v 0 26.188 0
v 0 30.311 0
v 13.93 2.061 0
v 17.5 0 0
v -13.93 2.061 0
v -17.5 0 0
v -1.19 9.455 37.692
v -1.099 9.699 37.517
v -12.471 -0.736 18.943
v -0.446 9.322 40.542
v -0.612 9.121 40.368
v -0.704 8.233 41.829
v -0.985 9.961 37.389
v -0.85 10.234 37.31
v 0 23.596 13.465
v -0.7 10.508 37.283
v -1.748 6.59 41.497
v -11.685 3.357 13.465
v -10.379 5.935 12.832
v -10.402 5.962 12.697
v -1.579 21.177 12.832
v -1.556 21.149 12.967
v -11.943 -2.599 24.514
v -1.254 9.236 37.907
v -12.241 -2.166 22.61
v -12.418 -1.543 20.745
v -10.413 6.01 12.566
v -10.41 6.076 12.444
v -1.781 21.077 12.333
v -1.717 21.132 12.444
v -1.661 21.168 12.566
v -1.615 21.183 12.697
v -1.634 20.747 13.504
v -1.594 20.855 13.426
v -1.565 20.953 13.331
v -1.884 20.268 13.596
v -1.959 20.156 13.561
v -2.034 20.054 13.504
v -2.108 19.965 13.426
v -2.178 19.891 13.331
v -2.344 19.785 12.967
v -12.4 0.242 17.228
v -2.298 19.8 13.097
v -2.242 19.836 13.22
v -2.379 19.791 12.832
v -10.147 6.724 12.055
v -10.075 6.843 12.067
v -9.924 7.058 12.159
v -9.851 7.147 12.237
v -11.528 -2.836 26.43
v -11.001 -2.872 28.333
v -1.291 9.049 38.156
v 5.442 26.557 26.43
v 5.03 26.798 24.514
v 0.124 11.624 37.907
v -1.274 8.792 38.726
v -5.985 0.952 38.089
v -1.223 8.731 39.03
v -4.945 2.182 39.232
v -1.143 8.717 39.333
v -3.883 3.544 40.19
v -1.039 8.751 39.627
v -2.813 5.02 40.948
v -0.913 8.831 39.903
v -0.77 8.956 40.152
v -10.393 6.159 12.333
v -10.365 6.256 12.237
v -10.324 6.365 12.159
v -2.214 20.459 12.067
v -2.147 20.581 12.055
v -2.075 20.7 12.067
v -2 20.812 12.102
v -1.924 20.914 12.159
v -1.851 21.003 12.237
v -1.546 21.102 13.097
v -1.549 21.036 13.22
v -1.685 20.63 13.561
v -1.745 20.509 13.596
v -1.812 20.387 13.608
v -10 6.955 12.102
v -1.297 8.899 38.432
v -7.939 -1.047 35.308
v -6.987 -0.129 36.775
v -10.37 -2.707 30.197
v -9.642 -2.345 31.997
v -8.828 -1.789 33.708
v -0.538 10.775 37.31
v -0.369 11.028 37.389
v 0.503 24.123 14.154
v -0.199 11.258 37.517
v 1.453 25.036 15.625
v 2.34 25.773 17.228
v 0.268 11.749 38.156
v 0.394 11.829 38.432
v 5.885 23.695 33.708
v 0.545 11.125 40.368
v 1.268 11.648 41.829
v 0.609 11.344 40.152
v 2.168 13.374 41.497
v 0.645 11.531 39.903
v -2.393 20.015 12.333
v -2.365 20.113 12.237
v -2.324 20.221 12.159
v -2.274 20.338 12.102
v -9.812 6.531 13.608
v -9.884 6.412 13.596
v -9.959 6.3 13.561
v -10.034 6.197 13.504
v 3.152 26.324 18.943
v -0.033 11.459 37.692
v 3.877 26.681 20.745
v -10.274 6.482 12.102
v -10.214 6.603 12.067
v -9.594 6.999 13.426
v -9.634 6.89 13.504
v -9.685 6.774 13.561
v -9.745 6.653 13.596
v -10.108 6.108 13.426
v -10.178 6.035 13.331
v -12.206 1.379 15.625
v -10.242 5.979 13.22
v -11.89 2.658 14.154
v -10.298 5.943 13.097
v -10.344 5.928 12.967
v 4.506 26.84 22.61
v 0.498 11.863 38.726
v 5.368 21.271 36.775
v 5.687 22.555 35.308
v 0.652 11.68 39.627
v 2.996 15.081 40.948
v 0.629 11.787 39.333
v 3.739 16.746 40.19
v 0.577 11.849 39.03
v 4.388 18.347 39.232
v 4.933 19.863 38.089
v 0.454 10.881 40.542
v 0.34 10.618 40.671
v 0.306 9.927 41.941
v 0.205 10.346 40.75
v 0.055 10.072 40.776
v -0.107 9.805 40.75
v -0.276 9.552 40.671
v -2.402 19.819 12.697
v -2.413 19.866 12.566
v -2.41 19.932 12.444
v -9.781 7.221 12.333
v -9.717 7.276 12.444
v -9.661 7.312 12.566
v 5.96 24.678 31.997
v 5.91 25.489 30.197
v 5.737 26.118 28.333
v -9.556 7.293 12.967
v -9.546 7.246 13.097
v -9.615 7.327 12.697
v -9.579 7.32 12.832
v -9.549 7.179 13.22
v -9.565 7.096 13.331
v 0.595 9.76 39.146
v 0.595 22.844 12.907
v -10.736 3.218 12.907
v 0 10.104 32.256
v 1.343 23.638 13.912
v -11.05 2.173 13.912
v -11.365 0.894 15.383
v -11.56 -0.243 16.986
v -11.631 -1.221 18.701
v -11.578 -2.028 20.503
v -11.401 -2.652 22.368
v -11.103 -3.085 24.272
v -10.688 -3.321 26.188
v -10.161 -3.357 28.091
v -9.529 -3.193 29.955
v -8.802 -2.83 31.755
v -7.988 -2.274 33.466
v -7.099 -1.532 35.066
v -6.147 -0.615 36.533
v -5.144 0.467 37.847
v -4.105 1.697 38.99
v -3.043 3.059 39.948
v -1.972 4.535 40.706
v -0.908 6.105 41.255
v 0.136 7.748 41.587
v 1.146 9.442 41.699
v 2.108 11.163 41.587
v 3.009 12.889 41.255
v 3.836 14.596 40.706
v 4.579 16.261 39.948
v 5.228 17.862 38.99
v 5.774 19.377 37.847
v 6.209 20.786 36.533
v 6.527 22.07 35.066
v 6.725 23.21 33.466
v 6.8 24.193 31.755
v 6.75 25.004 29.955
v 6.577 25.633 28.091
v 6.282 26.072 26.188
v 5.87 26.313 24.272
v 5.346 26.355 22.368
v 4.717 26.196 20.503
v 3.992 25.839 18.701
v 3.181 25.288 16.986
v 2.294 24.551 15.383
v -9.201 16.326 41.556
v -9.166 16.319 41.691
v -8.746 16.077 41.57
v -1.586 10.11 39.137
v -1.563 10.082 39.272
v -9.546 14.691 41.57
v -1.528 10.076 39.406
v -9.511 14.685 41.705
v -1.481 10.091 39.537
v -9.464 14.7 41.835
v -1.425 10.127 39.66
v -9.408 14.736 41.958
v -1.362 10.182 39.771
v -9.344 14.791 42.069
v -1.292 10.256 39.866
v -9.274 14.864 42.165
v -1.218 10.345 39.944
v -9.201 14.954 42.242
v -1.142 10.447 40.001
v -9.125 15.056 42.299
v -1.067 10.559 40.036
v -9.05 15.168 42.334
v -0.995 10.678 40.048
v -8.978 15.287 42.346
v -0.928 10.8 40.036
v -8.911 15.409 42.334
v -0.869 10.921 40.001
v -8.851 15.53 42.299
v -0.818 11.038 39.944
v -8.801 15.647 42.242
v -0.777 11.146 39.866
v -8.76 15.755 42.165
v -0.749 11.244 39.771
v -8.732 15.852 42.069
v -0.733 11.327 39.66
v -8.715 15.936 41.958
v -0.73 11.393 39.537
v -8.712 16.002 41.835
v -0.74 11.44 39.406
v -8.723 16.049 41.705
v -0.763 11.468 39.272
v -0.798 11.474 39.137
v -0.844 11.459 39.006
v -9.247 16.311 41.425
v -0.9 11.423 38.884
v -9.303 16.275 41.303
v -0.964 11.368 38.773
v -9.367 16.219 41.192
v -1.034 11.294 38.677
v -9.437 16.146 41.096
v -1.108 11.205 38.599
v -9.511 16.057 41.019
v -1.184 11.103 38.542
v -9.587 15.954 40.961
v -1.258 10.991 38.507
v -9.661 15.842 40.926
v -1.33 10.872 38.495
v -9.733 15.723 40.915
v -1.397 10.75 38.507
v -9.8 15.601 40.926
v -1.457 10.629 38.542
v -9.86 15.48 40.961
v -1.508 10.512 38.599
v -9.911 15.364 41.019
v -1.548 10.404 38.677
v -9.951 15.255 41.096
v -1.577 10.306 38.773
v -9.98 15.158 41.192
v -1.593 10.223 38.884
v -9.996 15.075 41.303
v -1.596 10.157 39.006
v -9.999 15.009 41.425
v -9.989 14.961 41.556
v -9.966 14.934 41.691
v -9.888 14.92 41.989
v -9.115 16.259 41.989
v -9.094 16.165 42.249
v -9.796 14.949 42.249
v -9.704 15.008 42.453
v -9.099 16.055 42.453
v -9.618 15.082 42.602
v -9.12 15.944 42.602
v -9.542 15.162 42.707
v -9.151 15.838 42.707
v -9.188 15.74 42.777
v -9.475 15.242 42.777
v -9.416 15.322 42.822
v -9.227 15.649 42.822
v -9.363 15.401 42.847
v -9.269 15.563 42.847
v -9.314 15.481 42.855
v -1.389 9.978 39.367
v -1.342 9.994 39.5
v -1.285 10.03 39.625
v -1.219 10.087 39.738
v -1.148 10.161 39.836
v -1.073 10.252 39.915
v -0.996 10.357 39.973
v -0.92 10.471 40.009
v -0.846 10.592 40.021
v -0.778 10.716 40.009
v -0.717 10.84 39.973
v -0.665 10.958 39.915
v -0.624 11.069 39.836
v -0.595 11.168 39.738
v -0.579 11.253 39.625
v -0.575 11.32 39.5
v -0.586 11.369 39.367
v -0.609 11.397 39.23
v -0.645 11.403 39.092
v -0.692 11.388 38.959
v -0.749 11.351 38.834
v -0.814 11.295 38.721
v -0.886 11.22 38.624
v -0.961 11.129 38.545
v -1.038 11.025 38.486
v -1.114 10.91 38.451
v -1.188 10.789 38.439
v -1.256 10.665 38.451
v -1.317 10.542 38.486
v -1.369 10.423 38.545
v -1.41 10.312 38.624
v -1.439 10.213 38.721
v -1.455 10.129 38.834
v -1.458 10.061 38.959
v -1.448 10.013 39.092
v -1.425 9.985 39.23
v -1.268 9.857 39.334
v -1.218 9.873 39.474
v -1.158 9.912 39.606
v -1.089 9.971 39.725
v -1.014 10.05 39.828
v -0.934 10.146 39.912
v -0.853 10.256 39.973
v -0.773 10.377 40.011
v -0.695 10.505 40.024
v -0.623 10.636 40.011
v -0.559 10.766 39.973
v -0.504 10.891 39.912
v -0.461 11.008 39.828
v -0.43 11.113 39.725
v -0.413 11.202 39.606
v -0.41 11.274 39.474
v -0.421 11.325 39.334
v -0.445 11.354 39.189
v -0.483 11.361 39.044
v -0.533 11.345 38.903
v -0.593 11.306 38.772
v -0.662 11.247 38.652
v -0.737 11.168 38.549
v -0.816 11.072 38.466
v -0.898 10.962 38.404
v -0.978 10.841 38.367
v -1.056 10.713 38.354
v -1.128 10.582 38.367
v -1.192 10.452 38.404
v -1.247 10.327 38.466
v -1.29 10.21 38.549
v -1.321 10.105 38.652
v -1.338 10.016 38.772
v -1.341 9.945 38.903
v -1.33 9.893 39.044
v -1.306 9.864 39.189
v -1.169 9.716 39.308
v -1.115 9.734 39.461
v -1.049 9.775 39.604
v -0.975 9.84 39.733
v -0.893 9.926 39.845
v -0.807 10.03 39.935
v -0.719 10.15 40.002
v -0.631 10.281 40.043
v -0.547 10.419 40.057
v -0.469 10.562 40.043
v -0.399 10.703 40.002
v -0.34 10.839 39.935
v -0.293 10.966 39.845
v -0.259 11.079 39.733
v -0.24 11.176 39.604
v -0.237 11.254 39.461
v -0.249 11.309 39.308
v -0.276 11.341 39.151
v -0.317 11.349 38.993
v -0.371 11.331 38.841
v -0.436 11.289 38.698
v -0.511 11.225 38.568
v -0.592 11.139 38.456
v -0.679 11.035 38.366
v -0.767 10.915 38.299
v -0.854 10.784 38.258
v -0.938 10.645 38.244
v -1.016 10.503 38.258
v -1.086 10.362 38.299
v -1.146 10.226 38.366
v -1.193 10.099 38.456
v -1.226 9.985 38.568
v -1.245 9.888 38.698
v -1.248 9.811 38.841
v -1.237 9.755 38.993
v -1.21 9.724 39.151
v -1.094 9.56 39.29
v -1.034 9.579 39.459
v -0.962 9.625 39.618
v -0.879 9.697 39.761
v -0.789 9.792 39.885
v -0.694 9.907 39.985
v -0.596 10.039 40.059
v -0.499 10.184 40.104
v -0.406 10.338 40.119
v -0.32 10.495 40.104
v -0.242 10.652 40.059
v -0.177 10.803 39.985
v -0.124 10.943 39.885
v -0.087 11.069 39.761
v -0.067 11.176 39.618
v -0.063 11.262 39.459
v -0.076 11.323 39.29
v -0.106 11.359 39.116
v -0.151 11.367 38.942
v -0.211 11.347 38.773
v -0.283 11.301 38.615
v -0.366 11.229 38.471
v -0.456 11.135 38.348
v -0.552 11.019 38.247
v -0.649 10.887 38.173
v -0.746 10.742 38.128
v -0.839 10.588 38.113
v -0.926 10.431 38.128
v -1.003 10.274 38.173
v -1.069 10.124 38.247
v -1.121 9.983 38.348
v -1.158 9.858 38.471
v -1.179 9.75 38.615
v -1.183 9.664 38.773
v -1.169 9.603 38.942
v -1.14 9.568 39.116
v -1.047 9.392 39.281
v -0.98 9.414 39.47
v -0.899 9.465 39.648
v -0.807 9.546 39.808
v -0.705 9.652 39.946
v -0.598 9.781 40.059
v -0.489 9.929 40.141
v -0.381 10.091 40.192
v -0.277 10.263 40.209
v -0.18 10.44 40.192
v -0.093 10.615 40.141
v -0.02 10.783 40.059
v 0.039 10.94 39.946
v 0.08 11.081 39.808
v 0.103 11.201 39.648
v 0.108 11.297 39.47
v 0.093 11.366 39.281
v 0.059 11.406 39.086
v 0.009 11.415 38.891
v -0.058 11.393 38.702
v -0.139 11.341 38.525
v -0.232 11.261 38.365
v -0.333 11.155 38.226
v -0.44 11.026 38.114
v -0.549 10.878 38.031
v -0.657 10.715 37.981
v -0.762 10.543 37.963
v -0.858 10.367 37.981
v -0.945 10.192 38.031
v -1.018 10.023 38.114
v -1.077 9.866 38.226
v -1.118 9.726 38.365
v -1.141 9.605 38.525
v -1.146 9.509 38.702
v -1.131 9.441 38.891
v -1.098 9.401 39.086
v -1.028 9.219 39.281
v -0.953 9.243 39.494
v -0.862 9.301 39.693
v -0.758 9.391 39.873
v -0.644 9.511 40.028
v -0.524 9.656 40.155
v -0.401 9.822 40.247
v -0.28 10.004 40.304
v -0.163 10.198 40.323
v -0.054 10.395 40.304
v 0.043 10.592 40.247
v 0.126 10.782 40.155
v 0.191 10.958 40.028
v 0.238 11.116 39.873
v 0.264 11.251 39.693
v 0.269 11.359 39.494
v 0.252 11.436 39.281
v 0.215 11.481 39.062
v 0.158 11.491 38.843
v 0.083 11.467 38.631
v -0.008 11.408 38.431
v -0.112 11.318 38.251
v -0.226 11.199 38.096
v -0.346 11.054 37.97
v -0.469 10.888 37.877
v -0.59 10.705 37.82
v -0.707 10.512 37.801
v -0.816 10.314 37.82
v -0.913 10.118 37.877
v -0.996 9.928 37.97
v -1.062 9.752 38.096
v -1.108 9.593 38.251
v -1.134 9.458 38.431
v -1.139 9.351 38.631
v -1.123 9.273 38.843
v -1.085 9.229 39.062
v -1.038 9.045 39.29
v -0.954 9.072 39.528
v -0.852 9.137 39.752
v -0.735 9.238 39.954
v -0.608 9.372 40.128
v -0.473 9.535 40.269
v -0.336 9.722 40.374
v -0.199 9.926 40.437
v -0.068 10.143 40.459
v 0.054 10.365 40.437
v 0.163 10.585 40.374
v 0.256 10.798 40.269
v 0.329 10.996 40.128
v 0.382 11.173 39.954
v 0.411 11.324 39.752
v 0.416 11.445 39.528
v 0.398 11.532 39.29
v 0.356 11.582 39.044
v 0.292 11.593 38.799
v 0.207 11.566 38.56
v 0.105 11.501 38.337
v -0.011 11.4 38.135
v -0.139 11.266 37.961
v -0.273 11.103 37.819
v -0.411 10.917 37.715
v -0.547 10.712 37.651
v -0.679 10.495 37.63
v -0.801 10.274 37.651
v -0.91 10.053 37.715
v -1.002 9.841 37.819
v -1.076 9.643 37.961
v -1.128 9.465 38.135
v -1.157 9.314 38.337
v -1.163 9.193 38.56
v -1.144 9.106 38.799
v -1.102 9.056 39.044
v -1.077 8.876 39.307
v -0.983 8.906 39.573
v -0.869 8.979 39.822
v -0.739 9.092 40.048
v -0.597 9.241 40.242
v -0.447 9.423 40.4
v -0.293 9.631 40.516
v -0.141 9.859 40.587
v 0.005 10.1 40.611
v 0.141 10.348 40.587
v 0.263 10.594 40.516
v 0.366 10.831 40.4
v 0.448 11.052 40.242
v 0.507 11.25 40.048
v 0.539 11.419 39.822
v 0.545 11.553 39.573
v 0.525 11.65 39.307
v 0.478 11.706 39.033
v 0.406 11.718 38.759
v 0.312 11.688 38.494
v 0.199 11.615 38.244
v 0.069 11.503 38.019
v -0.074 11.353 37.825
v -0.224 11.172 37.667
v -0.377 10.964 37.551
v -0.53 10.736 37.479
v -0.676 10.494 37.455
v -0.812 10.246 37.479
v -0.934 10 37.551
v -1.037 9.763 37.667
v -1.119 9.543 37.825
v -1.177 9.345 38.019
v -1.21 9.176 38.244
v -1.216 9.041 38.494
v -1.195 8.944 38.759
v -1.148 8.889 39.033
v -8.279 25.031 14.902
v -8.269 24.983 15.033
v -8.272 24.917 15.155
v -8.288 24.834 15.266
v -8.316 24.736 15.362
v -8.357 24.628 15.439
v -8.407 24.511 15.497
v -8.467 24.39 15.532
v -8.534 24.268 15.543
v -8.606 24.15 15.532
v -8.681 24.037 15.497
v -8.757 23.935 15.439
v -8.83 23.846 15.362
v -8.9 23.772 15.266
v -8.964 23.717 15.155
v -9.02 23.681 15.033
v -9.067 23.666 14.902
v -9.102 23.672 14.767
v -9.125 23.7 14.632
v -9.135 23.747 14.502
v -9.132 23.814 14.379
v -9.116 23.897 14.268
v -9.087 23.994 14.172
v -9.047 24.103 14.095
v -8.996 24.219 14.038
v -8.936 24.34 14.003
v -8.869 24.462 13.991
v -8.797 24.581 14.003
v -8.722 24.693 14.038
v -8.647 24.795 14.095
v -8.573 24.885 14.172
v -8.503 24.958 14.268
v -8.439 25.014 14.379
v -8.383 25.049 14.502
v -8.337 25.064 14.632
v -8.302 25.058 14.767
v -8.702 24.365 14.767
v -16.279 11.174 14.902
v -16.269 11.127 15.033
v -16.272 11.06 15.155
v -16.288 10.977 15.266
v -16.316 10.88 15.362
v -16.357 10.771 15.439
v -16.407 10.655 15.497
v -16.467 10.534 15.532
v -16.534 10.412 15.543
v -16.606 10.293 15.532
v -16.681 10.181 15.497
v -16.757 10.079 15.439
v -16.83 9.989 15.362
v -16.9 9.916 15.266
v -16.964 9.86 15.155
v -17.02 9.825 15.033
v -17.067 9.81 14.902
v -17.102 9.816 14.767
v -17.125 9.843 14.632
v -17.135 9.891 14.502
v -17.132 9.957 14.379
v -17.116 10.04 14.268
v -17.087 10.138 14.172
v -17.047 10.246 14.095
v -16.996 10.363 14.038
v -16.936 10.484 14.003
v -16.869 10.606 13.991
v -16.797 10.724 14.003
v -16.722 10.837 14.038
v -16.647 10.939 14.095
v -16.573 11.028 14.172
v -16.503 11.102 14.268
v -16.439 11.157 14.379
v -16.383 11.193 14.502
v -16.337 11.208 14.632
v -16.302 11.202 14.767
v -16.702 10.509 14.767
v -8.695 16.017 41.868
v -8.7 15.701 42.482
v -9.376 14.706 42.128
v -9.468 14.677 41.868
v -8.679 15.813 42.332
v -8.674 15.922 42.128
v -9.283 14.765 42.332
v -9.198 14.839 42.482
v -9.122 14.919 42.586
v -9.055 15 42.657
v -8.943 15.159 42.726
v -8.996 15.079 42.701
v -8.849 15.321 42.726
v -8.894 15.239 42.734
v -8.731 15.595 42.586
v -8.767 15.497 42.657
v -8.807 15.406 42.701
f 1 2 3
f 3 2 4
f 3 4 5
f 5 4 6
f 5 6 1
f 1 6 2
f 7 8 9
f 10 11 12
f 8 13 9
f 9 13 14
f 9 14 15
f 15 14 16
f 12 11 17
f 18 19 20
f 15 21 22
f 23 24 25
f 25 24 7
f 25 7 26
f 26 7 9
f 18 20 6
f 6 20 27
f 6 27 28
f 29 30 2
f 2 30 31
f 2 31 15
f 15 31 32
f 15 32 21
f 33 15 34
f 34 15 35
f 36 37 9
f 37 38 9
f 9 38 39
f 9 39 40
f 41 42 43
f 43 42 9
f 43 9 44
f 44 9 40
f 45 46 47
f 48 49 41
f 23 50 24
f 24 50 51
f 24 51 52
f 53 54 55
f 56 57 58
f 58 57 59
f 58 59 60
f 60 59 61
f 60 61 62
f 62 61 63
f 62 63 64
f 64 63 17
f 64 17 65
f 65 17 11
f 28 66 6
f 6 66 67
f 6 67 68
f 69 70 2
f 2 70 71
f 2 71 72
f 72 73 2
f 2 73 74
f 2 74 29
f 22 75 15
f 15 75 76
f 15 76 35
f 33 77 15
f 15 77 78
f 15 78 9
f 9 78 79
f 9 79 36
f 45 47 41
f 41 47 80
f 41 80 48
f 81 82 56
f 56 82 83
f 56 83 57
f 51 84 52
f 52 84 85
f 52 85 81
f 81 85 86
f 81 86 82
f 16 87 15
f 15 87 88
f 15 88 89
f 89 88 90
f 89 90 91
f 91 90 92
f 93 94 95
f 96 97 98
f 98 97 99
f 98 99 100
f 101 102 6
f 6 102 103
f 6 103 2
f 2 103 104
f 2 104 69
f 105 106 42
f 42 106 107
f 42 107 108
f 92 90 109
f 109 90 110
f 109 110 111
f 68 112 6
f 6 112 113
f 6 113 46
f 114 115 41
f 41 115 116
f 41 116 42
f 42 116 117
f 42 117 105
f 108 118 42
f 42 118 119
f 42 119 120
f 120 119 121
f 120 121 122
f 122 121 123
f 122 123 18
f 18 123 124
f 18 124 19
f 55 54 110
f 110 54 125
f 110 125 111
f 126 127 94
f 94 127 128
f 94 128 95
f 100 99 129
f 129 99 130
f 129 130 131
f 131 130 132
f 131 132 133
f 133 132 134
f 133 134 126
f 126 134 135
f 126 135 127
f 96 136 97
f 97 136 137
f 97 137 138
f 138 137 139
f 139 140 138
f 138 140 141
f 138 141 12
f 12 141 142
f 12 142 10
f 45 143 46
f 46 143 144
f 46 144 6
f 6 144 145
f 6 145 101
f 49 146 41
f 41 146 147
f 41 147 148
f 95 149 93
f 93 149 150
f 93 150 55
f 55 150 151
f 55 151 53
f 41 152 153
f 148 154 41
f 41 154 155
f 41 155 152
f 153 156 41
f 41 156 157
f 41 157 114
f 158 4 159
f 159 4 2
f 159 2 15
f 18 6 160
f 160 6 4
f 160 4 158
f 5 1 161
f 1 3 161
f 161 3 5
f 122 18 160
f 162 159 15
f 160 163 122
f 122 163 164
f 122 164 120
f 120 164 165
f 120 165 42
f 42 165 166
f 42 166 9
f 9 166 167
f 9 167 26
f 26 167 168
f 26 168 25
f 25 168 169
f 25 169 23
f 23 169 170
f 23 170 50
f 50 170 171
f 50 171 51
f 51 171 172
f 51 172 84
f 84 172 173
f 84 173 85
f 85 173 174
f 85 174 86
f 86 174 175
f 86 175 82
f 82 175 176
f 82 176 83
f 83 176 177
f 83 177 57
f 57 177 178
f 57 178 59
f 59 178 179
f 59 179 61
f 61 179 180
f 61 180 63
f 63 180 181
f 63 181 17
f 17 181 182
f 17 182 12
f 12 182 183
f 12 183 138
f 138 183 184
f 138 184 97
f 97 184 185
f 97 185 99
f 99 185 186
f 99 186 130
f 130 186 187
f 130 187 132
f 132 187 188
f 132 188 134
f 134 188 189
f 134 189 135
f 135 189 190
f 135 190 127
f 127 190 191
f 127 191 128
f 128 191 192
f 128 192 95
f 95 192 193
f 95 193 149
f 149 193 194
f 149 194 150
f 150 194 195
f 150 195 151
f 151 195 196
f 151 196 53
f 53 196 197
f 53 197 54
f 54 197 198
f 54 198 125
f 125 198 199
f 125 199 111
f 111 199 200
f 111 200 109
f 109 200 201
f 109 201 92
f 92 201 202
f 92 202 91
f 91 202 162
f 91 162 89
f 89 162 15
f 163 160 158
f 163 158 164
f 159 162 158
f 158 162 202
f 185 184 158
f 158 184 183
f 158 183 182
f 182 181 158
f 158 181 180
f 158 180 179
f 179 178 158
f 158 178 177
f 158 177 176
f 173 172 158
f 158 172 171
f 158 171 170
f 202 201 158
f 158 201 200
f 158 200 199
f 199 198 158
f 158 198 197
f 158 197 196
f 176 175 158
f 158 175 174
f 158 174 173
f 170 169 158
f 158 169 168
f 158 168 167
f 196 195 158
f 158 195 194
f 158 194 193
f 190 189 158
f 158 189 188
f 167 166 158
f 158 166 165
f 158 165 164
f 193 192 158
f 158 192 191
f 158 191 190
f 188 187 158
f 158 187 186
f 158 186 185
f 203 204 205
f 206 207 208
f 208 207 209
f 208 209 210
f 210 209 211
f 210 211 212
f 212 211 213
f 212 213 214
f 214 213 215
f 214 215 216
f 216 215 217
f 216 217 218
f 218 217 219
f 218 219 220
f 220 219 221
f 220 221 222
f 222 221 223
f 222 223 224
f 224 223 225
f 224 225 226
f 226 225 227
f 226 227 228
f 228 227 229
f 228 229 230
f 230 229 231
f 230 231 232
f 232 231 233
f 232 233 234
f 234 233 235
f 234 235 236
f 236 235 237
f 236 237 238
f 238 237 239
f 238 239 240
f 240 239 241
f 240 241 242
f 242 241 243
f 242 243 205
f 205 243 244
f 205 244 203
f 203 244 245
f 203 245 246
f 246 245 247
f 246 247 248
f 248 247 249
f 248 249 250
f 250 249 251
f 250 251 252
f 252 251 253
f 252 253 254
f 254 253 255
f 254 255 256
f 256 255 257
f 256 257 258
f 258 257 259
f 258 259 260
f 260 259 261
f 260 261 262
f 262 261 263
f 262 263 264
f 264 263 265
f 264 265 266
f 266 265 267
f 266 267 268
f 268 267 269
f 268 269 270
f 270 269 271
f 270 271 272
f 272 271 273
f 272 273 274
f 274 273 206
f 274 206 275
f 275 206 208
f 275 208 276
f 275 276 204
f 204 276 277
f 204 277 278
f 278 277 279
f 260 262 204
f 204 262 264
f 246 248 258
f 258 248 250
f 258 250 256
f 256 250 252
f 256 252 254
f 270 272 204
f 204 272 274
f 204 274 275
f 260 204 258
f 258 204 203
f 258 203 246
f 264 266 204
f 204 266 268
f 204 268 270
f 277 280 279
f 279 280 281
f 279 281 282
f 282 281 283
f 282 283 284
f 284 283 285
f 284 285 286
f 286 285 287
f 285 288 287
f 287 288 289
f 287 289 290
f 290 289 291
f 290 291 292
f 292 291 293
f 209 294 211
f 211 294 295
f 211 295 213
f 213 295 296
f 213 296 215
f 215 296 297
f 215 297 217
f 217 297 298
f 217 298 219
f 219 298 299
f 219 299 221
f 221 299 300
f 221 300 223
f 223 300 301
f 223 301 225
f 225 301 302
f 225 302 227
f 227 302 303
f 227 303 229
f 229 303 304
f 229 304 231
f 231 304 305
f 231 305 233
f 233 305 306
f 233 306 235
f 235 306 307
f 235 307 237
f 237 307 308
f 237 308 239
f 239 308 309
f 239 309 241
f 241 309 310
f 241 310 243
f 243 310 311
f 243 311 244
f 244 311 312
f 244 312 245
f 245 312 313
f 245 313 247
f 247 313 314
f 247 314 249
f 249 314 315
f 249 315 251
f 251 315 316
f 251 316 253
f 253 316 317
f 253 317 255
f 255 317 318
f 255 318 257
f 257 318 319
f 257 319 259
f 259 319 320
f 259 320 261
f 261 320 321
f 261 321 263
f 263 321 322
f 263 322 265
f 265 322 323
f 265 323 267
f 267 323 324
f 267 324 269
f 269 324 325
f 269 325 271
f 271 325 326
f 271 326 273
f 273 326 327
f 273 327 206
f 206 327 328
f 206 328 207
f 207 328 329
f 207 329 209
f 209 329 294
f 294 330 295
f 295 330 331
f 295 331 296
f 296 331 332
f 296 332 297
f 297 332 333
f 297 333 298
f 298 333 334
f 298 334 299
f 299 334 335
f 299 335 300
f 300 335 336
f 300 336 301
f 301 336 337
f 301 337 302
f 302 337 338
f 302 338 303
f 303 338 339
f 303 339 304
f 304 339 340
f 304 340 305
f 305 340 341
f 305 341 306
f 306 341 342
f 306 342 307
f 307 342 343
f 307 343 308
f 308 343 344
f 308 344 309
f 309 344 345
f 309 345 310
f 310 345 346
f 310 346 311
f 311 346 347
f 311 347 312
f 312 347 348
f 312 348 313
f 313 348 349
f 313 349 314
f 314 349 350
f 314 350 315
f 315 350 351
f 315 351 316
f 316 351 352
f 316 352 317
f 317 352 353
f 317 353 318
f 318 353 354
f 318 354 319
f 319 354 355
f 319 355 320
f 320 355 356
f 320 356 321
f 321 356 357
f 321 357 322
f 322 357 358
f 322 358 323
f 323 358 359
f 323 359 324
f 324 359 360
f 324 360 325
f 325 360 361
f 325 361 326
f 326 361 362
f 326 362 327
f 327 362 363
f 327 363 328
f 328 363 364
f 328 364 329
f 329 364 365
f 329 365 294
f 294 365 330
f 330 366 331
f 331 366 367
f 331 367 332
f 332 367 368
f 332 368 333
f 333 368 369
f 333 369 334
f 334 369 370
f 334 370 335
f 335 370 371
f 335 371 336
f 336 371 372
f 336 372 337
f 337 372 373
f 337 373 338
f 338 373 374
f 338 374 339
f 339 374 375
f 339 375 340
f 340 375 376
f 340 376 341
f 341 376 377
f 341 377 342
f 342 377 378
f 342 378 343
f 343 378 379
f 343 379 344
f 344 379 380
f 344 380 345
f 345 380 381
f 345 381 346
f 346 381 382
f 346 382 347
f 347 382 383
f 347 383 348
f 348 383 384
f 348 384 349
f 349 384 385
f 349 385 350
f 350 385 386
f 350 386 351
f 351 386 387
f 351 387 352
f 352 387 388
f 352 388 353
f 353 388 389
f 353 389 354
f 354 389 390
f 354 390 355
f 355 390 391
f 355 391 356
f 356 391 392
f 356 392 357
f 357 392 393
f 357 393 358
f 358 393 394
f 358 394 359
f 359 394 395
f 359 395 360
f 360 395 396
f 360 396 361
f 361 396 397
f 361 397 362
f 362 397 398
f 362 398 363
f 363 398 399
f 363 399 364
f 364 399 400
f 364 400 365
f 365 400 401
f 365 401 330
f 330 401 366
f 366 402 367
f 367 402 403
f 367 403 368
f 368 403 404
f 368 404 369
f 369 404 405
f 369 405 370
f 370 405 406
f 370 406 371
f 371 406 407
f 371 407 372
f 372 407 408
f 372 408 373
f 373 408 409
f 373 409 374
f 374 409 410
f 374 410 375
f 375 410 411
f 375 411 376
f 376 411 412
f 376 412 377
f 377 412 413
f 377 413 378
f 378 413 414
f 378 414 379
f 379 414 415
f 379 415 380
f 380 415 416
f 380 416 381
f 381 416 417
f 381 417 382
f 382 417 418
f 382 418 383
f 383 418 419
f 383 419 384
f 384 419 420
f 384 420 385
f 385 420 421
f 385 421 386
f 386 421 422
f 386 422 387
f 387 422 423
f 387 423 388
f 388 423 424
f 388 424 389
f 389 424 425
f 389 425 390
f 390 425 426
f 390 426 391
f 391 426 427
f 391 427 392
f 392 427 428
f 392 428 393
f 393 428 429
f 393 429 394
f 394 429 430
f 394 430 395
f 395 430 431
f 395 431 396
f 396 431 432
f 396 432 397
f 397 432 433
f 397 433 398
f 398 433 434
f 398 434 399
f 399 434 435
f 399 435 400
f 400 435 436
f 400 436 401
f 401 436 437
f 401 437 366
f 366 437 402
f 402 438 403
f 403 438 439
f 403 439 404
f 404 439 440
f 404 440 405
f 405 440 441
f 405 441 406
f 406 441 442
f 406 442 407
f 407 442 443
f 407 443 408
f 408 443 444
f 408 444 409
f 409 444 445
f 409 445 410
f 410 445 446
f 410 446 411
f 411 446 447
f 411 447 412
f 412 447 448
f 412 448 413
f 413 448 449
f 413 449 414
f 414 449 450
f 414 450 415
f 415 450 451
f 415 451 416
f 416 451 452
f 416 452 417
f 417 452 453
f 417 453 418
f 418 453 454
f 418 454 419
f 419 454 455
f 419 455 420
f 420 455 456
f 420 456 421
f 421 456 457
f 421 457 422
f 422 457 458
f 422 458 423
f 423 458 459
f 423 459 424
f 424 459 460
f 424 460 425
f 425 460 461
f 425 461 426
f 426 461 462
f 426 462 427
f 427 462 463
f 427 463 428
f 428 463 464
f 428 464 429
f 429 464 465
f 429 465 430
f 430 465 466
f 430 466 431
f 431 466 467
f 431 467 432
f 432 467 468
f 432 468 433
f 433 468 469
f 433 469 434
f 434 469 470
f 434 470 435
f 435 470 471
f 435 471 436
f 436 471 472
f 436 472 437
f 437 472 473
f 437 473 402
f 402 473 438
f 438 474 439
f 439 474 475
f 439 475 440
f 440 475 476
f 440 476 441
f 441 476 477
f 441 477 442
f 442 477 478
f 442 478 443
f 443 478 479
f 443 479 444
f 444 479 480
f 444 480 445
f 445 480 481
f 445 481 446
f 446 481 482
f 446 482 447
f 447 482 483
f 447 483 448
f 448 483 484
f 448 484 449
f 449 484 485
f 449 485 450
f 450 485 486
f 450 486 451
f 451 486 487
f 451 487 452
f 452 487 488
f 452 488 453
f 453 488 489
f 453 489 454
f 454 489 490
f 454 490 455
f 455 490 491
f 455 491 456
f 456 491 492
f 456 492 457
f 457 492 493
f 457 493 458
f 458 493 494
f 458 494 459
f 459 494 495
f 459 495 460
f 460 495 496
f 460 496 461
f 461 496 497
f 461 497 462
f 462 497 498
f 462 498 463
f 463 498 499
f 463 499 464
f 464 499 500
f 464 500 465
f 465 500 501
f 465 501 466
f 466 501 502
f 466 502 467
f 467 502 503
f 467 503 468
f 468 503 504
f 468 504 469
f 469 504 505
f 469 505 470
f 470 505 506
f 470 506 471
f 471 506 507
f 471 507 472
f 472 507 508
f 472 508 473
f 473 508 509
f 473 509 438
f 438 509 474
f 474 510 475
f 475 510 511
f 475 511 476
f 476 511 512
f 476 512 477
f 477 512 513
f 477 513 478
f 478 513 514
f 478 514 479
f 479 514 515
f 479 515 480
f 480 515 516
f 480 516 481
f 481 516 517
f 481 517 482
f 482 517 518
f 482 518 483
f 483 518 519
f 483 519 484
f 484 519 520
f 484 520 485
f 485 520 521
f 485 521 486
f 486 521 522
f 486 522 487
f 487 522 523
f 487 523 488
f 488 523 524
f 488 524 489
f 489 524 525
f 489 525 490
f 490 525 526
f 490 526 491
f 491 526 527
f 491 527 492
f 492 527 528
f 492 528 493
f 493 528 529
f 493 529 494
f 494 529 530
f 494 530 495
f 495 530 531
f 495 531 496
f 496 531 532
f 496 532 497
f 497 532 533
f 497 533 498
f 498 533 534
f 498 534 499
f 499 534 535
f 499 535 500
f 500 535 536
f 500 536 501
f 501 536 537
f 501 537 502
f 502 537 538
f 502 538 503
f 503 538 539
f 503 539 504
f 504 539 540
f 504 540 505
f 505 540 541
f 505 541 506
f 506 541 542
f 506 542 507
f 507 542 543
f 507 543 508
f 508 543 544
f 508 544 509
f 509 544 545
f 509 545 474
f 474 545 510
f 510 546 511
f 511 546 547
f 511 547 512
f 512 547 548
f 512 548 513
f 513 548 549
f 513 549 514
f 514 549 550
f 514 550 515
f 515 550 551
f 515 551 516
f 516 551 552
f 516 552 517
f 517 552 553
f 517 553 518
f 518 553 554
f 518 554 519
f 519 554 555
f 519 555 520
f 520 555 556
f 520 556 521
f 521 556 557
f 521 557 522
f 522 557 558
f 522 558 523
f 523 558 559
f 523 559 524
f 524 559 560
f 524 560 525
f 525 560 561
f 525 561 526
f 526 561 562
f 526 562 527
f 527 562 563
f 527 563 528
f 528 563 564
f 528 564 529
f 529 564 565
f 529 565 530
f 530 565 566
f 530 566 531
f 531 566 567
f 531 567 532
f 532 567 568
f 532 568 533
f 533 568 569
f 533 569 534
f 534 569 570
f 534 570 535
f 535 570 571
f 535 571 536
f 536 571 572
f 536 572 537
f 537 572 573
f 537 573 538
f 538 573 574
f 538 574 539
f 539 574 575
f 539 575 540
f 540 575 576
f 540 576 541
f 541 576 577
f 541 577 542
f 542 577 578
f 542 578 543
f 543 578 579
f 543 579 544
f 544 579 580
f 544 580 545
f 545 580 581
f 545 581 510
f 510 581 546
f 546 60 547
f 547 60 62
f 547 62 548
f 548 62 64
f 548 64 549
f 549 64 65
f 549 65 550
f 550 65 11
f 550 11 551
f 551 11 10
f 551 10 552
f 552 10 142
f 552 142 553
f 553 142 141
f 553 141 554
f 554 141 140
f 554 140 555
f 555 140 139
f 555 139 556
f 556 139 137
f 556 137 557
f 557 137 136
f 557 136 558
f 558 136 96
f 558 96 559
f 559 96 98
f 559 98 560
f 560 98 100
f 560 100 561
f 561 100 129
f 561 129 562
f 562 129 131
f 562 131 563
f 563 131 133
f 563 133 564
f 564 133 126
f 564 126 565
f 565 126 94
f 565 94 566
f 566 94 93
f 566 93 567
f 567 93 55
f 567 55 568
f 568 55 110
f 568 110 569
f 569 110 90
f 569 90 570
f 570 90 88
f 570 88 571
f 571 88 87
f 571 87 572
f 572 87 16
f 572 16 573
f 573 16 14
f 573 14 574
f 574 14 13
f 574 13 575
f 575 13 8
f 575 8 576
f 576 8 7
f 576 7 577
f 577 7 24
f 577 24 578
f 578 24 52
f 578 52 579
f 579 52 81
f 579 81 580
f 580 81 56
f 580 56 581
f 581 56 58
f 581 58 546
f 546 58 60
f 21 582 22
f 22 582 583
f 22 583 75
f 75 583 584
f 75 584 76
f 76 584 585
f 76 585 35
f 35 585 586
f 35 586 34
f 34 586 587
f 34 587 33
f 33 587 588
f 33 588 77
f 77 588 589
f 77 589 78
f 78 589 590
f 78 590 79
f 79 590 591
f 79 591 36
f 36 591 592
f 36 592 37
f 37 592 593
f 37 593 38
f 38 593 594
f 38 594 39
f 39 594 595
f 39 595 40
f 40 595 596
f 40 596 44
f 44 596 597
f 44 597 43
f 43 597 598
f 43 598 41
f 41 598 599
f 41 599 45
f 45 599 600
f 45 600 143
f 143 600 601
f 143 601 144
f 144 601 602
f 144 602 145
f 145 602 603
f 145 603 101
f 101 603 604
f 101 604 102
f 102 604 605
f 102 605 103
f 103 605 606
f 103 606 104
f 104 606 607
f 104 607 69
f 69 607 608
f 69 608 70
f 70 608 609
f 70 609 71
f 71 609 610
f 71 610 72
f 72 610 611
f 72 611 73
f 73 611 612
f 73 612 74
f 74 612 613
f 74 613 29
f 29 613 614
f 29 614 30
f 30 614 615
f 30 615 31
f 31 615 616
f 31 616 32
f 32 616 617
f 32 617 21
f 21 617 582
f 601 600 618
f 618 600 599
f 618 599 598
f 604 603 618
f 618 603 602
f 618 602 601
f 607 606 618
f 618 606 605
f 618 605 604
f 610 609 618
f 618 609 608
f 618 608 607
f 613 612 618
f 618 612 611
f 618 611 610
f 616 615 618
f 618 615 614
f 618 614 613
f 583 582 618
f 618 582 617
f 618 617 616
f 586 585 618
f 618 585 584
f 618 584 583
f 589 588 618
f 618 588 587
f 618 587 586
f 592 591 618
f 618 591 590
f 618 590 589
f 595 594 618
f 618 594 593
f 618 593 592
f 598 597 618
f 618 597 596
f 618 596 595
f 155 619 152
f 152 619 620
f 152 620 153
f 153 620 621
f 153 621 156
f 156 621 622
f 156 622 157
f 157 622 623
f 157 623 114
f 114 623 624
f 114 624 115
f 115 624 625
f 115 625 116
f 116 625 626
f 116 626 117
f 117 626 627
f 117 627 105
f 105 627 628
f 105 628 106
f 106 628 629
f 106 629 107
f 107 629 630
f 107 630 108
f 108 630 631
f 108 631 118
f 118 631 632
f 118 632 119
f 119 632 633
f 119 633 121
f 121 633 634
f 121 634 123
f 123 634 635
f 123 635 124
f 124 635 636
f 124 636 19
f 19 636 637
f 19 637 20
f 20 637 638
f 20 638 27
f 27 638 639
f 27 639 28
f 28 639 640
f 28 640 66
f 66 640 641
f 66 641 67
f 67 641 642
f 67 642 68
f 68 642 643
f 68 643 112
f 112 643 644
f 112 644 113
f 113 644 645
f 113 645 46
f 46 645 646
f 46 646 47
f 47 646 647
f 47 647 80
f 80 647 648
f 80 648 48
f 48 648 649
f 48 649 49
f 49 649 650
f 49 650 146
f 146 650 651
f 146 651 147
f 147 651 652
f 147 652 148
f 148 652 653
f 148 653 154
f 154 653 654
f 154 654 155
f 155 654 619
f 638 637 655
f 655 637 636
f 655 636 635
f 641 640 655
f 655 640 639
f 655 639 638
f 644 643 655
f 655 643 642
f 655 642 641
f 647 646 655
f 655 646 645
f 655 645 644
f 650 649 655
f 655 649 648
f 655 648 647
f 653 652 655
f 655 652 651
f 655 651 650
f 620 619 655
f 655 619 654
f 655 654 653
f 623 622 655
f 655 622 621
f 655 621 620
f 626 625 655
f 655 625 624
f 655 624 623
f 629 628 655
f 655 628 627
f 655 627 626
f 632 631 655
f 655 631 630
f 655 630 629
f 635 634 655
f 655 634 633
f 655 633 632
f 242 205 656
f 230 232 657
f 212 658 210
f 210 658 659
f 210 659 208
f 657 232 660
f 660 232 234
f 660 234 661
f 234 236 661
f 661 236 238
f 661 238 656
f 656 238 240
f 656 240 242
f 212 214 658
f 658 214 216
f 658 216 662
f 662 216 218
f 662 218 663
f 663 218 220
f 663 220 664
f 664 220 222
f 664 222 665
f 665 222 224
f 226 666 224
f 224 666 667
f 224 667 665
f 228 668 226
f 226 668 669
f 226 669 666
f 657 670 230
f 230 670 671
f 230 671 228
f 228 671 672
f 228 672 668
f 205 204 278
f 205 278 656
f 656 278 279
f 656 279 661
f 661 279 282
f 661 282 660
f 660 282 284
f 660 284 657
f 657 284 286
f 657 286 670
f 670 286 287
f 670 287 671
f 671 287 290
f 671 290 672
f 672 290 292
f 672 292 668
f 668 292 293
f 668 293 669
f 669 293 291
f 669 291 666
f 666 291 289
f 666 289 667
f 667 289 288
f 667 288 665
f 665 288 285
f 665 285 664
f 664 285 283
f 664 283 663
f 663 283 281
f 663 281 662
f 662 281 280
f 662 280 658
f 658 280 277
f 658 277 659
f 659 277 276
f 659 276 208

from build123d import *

# Parameters (mm, degrees)
AUFSATZ_LINEAR_AUSTRAGEN1_DEPTH = 40
FASE1_SIZE                      = 40
FASE1_SIZE_2                    = 9.973120114
WANDUNG1_T                      = -2
SKIZZE2_R                       = 17
AUFSATZ_LINEAR_AUSTRAGEN2_DEPTH = 1
SKIZZE3_R                       = 0.8
AUFSATZ_LINEAR_AUSTRAGEN3_DEPTH = 11
VERRUNDUNG1_R                   = 1
SKIZZE4_R                       = 0.8
AUFSATZ_LINEAR_AUSTRAGEN4_DEPTH = 8
AUFSATZ_LINEAR_START            = -0.5
AUFSATZ_LINEAR_AUSTRAGEN5_DEPTH = 0.5


with BuildPart() as part:
    # Skizze1 → Aufsatz-Linear austragen1 (new body)
    with BuildSketch(Plane.XY):
        Polygon((0, 30.310889132), (-17.5, 0), (17.5, 0), align=None)
    extrude(amount=AUFSATZ_LINEAR_AUSTRAGEN1_DEPTH)

    # Fase1
    # the kernel refuses this chamfer: 40, 9.973120114 mm, written as the material it takes off along each edge
    with BuildSketch(Plane(origin=(-121.385689972, 0, 40), x_dir=(0, -0.009314926653100153, -0.9999566151296001), z_dir=(1, 0, 0)), Plane(origin=(69.442844986, -89.967646606, 40), x_dir=(0.008066963115973384, 0.004657463326550014, -0.9999566151296001), z_dir=(-0.5, 0.8660254037844387, 0)), Plane(origin=(51.942844986, 120.278535738, 40), x_dir=(-0.008066963115973531, 0.0046574633265501, -0.9999566151296001), z_dir=(-0.5, -0.8660254037844387, 0))) as fase1_piece_1:
        Polygon((FASE1_SIZE * 0.99995661513, FASE1_SIZE * 0.0093149266531), (-FASE1_SIZE_2 * 0.00931492665285, FASE1_SIZE_2 * 0.999956615102), (0, 0), align=None)
    extrude(amount=242.771379945, mode=Mode.SUBTRACT)

    # Wandung1
    wandung1_openings = [part.faces().sort_by_distance(p)[0] for p in [
        (0, 10.103629711, 0),
    ]]
    offset(amount=WANDUNG1_T, openings=wandung1_openings, kind=Kind.INTERSECTION)

    # Skizze2 → Aufsatz-Linear austragen2 (add)
    with BuildSketch(Plane(origin=(-12.356843578, 7.134226966, 3.557525123), x_dir=(0.20951050732099702, -0.1209609477998327, 0.9702957262759971), z_dir=(-0.8403007481384855, 0.4851478631379986, 0.2419218955996654))):
        with Locations((22.558111296, 8.75)):
            Circle(SKIZZE2_R)
    extrude(amount=-AUFSATZ_LINEAR_AUSTRAGEN2_DEPTH)

    # Skizze3 → Aufsatz-Linear austragen3 (add)
    with BuildSketch(Plane(origin=(-12.356843578, 7.134226966, 3.557525123), x_dir=(0.20951050732099702, -0.1209609477998327, 0.9702957262759971), z_dir=(-0.8403007481384855, 0.4851478631379986, 0.2419218955996654))):
        with Locations(Location((36.558111296, 8.75, 0), (0, 0, 270))):
            Circle(SKIZZE3_R)
    extrude(amount=AUFSATZ_LINEAR_AUSTRAGEN3_DEPTH)

    # Verrundung1
    verrundung1_edges = [part.edges().sort_by_distance(p)[0] for p in [
        (0.077464866, 10.98266578, 39.029704274),
    ]]
    fillet(verrundung1_edges, radius=VERRUNDUNG1_R)

    # Skizze4 → Aufsatz-Linear austragen4 (add)
    with BuildSketch(Plane(origin=(-12.356843578, 7.134226966, 3.557525123), x_dir=(0.20951050732099705, -0.12096094779983271, 0.9702957262759971), z_dir=(-0.8403007481384855, 0.4851478631379987, 0.24192189559966543))):
        with Locations(Location((9.558111296, 16.75, 0), (0, 0, 270))):
            Circle(SKIZZE4_R)
        with Locations(Location((9.558111296, 0.75, 0), (0, 0, 270))):
            Circle(SKIZZE4_R)
    extrude(amount=AUFSATZ_LINEAR_AUSTRAGEN4_DEPTH)

    # Skizze5 → Aufsatz-Linear austragen5 (add)
    with BuildSketch(Plane(origin=(-21.600151808, 12.470853461, 6.218665974), x_dir=(0.209510507320997, -0.1209609477998327, 0.9702957262759971), z_dir=(-0.8403007481384855, 0.4851478631379987, 0.24192189559966537)).offset(AUFSATZ_LINEAR_START)):
        with BuildLine():
            ThreePointArc((36.558111296, 9.55), (35.758111296, 8.75), (36.558111296, 7.95))
            add(Edge.make_bspline(
                [(36.558111296, 7.95), (37.758111296, 7.95), (37.758111296, 8.75), (37.758111296, 9.55), (36.558111296, 9.55)],
                knots=[4.71238898, 4.71238898, 4.71238898, 6.283185307, 6.283185307, 7.853981634, 7.853981634, 7.853981634], degree=2, weights=[1, 0.707106781, 1, 0.707106781, 1]))
        make_face()
    extrude(amount=AUFSATZ_LINEAR_AUSTRAGEN5_DEPTH)


solid = part.part
